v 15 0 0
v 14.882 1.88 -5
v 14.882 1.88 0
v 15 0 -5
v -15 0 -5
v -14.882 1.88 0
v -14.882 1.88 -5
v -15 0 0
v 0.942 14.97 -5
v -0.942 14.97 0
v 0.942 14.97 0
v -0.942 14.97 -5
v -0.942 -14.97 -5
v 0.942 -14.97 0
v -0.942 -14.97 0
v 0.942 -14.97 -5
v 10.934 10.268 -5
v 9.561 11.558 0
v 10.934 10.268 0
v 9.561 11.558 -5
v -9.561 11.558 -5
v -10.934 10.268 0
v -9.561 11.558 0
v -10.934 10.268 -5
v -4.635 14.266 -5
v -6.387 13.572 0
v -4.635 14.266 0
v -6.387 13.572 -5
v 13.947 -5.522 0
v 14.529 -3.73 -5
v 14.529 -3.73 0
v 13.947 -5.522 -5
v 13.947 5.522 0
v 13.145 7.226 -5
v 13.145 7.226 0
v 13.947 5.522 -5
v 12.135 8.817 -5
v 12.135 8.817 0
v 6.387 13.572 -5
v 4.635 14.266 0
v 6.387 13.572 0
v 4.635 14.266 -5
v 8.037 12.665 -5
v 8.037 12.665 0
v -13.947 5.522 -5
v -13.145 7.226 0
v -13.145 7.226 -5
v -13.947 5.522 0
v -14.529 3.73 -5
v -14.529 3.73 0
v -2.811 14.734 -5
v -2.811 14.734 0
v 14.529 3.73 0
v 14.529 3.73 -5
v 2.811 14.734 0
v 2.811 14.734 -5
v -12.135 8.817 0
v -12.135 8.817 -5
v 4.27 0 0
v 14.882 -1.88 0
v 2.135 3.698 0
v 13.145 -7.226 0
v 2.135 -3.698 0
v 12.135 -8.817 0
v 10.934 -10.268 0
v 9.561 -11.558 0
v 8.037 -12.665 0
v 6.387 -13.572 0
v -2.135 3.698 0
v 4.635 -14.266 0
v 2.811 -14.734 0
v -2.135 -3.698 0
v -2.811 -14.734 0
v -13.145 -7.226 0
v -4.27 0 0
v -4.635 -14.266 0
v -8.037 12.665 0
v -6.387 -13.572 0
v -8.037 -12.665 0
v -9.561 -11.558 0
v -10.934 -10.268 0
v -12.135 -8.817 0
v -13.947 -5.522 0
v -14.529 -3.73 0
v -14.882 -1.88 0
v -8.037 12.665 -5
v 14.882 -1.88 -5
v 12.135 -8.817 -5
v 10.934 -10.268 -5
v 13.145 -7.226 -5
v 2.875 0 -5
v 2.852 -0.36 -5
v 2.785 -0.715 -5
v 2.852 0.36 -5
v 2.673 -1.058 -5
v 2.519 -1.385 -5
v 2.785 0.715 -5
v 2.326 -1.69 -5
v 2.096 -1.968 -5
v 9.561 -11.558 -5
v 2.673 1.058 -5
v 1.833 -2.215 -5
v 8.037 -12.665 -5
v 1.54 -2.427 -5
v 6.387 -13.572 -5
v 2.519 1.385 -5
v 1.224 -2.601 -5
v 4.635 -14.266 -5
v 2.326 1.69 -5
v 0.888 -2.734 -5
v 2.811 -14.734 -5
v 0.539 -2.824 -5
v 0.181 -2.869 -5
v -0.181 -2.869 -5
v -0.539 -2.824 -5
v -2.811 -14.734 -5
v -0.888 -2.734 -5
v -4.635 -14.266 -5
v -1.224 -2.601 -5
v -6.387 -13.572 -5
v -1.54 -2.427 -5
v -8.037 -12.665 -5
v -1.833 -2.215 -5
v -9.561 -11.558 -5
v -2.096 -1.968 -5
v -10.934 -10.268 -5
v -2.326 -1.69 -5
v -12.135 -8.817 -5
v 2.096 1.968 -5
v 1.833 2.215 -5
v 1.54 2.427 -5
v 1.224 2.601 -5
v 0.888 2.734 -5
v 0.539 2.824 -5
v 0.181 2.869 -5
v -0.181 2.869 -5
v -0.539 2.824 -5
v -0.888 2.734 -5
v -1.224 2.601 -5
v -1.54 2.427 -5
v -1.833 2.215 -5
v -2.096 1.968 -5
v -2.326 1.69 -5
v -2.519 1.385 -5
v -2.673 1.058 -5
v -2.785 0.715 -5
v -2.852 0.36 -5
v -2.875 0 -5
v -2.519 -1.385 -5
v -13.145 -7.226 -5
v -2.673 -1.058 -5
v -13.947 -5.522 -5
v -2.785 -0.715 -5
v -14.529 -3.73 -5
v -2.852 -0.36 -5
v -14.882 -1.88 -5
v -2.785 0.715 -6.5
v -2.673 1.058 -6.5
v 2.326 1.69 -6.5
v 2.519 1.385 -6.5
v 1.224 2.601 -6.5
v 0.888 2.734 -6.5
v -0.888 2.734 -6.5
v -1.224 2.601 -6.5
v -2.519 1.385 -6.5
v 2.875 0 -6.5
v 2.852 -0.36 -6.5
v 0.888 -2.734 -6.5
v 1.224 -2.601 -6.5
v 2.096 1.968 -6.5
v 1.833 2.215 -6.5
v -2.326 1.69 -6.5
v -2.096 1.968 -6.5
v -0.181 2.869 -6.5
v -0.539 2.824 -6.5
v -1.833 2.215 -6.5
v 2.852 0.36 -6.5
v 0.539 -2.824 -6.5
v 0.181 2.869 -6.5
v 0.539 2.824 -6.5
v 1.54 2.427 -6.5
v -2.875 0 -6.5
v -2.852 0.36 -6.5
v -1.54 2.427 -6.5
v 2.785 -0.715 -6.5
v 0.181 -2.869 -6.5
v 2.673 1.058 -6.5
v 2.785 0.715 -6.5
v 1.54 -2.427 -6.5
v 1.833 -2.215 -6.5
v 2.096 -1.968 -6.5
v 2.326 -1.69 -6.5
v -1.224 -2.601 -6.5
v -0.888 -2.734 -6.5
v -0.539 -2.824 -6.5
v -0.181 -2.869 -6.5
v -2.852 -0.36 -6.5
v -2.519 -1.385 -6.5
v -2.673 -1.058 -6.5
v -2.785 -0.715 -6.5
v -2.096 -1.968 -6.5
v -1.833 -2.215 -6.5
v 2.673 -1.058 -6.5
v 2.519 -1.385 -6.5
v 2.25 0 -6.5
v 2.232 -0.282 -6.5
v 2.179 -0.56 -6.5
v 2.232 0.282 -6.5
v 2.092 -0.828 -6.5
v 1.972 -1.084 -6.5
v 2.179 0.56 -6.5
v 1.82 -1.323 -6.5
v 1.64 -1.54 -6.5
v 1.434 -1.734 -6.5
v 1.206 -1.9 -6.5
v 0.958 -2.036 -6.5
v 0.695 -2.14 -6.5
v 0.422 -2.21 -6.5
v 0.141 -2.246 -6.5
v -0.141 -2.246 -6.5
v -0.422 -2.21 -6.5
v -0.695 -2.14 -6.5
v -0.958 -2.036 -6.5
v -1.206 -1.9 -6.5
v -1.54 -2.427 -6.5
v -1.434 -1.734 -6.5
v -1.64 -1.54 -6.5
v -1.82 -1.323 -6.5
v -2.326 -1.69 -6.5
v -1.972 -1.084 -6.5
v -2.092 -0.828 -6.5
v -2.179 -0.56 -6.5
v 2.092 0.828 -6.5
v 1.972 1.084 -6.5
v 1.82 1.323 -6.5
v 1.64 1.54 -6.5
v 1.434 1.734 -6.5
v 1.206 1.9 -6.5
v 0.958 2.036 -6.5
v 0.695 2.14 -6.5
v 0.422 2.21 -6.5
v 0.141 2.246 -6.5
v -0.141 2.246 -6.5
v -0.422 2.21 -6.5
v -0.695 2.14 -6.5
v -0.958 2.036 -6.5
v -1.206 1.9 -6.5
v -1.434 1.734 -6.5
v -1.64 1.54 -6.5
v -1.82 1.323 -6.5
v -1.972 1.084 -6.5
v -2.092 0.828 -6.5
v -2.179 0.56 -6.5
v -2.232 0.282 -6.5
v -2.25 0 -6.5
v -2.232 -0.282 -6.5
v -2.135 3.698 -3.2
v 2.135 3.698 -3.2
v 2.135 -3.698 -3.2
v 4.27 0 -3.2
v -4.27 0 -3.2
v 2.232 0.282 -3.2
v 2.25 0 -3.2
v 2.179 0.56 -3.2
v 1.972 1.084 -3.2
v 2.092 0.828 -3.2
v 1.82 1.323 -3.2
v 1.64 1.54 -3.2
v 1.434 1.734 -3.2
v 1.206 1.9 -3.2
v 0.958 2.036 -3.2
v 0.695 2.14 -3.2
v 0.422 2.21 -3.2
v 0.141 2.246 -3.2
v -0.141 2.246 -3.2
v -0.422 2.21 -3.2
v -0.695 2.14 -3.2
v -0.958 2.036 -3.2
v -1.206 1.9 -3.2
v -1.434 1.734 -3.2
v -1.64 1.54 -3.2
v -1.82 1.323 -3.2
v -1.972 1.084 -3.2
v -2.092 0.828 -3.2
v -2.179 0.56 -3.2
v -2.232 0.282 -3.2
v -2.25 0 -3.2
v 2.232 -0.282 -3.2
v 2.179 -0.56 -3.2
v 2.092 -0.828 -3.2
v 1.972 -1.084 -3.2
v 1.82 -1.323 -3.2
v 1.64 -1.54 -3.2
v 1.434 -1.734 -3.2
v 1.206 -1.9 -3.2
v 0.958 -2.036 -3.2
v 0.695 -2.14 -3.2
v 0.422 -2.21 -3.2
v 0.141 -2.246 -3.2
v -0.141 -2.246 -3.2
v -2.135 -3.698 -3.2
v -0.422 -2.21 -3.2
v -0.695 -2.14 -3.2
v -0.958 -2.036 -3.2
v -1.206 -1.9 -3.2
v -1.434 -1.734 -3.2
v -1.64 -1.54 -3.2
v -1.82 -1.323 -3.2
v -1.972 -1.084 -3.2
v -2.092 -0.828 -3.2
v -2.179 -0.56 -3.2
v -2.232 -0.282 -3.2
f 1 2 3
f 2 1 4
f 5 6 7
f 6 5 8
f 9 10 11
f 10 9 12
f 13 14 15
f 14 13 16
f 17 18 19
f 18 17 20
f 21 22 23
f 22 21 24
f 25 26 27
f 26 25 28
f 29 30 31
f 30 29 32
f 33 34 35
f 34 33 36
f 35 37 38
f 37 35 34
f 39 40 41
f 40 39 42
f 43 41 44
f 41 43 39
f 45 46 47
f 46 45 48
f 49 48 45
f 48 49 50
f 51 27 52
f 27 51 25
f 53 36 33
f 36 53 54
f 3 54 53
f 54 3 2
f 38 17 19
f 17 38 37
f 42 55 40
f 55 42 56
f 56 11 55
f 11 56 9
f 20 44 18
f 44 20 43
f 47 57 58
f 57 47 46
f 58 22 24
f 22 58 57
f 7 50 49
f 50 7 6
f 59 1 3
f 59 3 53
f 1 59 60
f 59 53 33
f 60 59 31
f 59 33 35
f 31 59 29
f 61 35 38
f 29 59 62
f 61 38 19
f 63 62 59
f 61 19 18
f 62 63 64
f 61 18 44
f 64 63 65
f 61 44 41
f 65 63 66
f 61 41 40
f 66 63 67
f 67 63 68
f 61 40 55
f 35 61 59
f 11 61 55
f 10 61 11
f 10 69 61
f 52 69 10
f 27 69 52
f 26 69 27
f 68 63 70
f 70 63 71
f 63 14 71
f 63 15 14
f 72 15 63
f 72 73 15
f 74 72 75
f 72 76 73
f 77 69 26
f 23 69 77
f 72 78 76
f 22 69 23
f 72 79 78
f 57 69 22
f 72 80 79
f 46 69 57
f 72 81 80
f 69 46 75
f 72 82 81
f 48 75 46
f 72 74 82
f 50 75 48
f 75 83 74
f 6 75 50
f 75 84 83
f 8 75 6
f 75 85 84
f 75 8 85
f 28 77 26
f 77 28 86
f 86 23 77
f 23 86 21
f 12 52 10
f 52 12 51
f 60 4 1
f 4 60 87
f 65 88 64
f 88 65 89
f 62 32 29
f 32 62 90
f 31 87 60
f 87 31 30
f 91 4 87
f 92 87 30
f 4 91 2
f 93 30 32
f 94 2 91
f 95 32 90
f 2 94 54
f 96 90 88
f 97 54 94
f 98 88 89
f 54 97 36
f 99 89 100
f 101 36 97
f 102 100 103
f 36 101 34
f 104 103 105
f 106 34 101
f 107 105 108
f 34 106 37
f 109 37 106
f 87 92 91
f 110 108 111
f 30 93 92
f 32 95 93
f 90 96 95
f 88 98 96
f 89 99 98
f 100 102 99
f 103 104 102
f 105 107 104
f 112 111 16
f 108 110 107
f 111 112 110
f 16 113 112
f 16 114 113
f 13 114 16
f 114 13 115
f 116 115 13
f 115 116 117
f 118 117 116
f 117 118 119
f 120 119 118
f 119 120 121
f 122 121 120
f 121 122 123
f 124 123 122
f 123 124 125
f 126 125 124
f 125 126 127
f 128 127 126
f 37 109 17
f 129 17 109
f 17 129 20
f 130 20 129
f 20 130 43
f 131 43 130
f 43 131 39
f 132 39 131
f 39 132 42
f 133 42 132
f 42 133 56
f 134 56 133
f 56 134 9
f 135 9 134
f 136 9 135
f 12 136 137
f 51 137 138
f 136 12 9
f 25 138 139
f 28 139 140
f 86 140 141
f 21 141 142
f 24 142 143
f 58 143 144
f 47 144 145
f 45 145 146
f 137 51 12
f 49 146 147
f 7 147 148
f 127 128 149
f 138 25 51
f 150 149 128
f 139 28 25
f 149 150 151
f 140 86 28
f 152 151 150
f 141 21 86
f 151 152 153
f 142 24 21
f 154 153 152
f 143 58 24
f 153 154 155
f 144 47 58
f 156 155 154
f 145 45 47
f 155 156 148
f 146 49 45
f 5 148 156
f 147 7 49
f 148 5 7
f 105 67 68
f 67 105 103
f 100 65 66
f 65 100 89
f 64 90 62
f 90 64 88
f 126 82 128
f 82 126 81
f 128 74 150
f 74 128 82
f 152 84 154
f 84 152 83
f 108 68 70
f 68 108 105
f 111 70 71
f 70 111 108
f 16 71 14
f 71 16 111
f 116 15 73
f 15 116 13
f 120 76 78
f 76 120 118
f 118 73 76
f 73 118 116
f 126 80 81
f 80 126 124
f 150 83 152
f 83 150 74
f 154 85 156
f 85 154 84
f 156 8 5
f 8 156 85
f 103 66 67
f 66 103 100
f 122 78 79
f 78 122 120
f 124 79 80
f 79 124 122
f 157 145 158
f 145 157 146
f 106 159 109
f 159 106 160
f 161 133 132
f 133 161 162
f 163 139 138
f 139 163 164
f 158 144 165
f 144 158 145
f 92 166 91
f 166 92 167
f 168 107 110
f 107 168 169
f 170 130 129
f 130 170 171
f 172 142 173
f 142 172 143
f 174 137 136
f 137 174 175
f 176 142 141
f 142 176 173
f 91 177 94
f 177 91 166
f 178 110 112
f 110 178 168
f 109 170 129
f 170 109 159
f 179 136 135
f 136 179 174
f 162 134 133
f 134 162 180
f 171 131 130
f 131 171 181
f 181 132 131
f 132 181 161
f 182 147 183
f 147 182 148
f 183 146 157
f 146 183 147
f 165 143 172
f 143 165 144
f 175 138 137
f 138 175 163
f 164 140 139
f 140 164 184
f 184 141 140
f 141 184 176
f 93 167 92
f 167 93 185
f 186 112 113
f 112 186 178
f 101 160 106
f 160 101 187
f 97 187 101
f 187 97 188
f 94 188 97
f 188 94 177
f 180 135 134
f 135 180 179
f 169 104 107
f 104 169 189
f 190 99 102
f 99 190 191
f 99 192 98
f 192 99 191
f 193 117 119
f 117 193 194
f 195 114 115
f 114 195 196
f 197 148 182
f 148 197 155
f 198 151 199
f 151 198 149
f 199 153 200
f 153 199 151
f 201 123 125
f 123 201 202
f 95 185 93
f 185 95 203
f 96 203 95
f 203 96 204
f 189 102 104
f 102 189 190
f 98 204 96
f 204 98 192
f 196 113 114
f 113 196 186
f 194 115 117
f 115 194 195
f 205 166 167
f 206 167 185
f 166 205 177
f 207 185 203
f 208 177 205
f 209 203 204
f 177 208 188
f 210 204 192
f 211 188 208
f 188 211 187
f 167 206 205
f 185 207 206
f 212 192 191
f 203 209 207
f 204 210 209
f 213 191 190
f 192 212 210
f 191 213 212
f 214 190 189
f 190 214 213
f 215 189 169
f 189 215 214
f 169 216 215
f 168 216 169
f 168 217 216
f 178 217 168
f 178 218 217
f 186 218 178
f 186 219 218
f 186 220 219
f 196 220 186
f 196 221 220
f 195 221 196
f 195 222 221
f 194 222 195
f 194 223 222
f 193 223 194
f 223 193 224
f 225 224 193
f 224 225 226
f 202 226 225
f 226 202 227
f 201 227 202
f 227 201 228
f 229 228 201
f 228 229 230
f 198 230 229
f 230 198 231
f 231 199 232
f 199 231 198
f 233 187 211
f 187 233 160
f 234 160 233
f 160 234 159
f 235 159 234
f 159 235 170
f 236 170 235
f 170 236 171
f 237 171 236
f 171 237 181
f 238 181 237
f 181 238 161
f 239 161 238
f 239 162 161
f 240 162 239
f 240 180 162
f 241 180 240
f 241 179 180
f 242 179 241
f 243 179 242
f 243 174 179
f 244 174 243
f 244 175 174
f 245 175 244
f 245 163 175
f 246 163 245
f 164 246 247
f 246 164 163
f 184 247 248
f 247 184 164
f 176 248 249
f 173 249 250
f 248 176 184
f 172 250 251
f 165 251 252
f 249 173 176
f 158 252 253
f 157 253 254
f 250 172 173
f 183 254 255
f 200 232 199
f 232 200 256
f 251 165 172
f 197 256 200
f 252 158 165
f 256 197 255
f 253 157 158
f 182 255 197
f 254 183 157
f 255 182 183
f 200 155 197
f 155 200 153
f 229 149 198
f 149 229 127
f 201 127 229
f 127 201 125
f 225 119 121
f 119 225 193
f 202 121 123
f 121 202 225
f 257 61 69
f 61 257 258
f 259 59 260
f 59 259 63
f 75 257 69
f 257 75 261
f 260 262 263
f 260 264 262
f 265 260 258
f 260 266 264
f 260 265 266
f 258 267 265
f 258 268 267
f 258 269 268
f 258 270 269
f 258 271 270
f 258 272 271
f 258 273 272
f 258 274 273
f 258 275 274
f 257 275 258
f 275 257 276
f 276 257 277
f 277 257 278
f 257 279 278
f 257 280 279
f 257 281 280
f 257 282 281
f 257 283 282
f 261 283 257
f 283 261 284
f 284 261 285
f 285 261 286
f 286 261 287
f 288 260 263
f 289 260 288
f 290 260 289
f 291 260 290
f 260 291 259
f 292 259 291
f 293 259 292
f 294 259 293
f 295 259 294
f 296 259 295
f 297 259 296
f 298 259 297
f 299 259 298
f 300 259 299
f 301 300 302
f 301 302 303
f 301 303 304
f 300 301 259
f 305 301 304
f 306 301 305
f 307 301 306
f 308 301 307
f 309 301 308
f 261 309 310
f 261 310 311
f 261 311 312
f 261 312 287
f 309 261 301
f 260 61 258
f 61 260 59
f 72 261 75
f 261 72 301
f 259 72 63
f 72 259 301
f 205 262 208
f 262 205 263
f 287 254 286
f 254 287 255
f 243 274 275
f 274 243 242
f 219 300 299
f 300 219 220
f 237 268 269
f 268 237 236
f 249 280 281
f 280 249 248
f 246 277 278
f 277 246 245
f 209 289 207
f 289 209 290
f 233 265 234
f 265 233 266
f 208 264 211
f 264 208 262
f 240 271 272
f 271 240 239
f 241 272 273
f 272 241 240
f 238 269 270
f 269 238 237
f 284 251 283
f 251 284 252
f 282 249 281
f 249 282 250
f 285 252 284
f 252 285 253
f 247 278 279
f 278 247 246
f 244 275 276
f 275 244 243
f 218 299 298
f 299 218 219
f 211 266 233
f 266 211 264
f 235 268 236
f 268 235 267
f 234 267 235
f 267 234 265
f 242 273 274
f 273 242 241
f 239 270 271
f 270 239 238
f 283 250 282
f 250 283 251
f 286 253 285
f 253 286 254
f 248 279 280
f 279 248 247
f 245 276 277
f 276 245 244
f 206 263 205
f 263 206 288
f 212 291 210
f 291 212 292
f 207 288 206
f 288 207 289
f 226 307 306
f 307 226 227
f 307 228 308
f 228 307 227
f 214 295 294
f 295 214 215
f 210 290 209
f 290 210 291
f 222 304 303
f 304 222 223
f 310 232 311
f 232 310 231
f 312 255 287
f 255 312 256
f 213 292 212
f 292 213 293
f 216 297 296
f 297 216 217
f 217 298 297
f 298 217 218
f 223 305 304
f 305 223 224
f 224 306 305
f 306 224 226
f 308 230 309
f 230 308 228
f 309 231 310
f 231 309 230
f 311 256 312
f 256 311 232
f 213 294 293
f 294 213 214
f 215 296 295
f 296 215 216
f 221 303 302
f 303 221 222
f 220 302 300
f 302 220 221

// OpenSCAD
$fn = 50;


difference() {
	union() {
		translate(v = [0, 0, -5.0000000000]) {
			cylinder(h = 5.0000000000, r = 15.0000000000);
		}
		translate(v = [0, 0, -6.5000000000]) {
			cylinder(h = 6.5000000000, r = 2.8750000000);
		}
	}
	union() {
		translate(v = [0, 0, 0]) {
			rotate(a = [0, 0, 0]) {
				difference() {
					union() {
						translate(v = [0, 0, -3.2000000000]) {
							linear_extrude(height = 3.2000000000) {
								polygon(points = [[4.2698000000, 0.0000000000], [2.1349000000, 3.6977552691], [-2.1349000000, 3.6977552691], [-4.2698000000, 0.0000000000], [-2.1349000000, -3.6977552691], [2.1349000000, -3.6977552691]]);
							}
						}
					}
					union();
				}
			}
		}
		#translate(v = [0, 0, -100.0000000000]) {
			cylinder(h = 200, r = 2.2500000000);
		}
	}
}
